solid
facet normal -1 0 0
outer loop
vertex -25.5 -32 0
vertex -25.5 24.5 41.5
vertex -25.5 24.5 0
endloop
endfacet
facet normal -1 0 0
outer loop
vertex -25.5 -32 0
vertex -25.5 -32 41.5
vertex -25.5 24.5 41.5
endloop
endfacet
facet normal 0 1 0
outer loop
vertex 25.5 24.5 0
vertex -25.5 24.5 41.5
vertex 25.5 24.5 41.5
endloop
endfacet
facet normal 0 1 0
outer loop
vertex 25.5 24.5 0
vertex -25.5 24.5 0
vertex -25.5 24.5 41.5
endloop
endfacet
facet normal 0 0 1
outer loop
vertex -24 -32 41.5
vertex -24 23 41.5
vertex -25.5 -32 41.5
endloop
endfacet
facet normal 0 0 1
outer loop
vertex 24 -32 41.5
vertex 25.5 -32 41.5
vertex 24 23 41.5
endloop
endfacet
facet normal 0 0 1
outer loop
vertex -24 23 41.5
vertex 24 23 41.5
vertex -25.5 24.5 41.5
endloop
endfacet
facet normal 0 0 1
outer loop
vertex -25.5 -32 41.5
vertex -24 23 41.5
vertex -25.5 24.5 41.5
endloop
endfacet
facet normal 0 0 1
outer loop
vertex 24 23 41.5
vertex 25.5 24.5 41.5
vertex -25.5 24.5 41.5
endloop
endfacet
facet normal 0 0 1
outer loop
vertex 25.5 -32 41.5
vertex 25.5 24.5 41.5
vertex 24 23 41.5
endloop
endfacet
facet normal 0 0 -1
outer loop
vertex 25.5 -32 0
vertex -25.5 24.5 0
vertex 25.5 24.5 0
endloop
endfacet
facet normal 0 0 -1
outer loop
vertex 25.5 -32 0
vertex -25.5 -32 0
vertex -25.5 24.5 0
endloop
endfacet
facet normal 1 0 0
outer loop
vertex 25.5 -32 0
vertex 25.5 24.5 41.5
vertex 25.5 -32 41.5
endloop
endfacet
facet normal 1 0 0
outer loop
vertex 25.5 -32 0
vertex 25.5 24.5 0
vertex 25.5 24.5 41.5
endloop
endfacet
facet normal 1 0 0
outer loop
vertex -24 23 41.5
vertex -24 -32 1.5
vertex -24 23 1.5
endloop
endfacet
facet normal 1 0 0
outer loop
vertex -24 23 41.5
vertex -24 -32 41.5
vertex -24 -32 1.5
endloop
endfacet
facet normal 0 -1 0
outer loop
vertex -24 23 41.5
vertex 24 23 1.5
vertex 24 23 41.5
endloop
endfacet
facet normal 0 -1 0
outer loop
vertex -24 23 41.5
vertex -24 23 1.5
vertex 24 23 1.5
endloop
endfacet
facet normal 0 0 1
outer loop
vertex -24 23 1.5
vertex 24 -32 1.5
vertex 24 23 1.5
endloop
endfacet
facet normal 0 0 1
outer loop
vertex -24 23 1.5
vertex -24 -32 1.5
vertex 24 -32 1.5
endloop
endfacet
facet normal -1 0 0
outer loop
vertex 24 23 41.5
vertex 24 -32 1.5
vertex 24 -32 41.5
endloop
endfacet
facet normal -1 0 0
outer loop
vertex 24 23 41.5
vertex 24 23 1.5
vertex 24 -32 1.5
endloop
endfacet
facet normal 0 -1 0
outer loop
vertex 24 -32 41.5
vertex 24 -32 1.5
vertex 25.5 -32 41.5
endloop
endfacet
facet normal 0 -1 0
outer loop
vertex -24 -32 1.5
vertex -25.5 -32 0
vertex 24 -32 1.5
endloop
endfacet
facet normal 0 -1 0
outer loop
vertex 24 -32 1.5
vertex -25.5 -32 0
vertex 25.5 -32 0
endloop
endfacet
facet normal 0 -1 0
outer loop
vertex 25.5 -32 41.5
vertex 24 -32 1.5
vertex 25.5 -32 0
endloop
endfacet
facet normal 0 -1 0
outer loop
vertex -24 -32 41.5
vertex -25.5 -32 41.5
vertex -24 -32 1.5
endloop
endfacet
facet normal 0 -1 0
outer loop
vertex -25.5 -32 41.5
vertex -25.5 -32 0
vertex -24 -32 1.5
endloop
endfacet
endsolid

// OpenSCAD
translate([0,0,40+1.5])
rotate([180,0,0])
difference(){
translate([-24-1.5,-23-1.5,0])cube([48+1.5*2,48+8+1.5*2,40+1.5]);
translate([-24,-23,-1])cube([48,48+8,41]);
translate([-24-1.6,34.5-2.5,-0.1])cube([48+1.6*2,10,55]);
/*translate([-19,19.5,37])rotate([0,-90,0])#cylinder(r=5/2,h=10,$fn=20);
translate([-26,19.5-5/2,-0.1])#cube([3,5,37]);
translate([-19,-12,37])rotate([0,-90,0])#cylinder(r=5/2,h=10,$fn=20);
translate([-26,-12-5/2,-0.1])#cube([3,5,37]);
*/}
